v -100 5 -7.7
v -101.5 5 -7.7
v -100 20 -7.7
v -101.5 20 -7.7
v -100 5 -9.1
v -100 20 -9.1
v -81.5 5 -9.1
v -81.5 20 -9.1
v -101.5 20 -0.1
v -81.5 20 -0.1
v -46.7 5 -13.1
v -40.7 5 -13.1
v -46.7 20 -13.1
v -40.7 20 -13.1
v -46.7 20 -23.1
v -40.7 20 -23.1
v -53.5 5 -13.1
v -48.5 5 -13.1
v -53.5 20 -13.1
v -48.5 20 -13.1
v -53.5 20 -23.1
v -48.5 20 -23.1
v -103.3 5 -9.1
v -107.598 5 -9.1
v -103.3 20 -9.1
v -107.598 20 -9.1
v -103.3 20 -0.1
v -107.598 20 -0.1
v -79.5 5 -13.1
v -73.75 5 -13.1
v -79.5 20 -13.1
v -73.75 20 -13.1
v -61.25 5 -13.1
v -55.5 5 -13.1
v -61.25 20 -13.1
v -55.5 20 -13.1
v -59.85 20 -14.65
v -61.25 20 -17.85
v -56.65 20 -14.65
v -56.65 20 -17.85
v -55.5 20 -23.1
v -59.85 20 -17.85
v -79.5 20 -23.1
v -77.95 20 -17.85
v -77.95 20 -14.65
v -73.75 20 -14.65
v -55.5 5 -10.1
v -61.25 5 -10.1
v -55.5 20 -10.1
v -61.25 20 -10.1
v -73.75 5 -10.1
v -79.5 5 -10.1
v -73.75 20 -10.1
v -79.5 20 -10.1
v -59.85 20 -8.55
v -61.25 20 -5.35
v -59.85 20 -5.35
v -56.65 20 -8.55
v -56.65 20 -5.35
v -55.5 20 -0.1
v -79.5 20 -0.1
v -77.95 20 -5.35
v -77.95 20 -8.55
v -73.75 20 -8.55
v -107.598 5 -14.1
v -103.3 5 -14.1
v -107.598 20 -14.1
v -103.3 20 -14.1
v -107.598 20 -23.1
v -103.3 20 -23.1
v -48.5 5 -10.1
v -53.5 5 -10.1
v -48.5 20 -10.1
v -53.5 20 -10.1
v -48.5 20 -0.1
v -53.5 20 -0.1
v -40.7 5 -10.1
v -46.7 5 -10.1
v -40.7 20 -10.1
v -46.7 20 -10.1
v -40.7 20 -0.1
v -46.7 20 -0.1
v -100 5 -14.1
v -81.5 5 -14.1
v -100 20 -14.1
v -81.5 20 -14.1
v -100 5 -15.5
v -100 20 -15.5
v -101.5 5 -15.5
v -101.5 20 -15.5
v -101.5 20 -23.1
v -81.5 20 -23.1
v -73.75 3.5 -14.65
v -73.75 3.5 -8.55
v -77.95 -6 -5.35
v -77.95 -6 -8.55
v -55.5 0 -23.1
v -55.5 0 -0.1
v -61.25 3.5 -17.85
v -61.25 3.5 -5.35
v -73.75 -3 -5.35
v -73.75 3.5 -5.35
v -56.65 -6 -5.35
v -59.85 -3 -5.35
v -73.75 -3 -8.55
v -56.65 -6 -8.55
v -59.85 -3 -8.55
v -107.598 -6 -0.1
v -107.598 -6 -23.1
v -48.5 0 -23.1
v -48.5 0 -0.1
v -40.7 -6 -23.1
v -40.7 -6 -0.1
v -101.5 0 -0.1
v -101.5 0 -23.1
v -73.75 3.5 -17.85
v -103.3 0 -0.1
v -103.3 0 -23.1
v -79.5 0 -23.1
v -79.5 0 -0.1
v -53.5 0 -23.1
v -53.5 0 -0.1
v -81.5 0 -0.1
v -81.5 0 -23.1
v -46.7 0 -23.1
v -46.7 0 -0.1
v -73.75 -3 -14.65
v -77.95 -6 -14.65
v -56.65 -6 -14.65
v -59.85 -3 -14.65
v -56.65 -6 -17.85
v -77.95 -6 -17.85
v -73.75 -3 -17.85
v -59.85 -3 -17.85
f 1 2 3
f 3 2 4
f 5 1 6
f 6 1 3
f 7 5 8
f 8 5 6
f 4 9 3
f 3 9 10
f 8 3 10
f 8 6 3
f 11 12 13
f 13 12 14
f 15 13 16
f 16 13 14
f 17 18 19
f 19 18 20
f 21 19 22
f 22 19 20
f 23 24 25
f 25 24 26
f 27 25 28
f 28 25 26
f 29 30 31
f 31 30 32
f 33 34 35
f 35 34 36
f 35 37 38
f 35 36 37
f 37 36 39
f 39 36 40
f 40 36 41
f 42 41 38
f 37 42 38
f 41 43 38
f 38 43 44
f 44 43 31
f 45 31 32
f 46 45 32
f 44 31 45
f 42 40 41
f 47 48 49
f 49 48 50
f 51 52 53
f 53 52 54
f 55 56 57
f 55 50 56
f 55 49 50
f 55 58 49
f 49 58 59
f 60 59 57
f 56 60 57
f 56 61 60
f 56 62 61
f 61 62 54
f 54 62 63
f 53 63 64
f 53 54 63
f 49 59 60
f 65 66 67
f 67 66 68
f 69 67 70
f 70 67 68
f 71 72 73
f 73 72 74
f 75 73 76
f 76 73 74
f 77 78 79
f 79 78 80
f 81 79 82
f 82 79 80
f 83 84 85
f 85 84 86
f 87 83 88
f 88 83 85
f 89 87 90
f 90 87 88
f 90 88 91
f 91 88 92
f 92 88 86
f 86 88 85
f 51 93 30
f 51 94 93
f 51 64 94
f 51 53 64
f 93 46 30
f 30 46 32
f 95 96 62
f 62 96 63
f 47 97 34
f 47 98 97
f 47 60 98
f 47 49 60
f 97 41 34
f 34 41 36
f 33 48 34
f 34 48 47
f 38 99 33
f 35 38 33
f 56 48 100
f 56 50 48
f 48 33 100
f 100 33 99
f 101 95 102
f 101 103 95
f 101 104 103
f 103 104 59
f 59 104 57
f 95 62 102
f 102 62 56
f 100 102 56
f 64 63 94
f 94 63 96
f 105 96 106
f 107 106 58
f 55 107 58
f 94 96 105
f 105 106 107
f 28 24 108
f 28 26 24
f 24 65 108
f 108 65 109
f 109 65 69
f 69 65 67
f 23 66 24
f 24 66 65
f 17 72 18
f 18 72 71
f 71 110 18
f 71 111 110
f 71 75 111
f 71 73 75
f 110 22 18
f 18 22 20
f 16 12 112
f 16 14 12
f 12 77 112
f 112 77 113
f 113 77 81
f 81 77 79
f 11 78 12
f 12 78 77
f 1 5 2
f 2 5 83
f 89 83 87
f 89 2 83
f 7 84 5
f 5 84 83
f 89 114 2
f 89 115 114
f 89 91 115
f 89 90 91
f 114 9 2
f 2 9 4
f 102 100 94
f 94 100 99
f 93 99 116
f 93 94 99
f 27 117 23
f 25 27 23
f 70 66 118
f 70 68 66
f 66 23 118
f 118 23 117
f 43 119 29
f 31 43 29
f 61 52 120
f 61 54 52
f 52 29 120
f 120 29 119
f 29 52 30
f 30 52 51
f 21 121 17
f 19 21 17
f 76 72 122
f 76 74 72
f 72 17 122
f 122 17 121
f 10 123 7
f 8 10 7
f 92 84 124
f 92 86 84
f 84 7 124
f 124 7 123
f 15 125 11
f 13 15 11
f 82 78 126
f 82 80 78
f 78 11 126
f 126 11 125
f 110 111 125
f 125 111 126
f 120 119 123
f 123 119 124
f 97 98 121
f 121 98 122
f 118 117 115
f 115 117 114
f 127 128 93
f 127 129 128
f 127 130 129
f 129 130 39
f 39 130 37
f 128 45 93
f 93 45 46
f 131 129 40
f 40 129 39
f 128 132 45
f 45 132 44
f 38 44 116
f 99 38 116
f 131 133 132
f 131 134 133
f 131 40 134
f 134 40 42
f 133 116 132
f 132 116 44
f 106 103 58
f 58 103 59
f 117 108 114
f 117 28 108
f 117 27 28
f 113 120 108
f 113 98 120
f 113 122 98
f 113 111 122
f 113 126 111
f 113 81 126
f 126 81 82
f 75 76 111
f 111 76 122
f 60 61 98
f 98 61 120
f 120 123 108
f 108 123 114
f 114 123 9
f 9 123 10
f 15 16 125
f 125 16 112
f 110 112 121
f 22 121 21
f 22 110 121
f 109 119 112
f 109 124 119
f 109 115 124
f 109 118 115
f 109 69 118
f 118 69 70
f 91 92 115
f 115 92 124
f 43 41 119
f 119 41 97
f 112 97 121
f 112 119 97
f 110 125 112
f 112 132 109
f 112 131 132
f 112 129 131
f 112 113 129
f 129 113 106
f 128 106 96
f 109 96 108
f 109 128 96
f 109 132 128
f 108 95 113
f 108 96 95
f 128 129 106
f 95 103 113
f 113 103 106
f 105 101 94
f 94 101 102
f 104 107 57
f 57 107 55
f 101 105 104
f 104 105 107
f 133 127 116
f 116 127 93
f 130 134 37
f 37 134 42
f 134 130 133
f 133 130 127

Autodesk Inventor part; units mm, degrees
ref_plane "YZ Plane" through (0, 0, 0) normal (1, 0, 0) x (0, 1, 0)
ref_plane "XZ Plane" through (0, 0, 0) normal (0, 1, 0) x (-1, 0, 0)
ref_plane "XY Plane" through (0, 0, 0) normal (0, 0, 1) x (1, 0, 0)
sketch "Sketch1" plane through (0, 0, 0) normal (0, 1, 0) x (-1, 0, 0)
  line L0 (73.75, -5.35) -> (61.25, -5.35)
  line L1 (61.25, -5.35) -> (61.25, -17.85)
  line L2 (61.25, -17.85) -> (73.75, -17.85)
  line L3 (73.75, -17.85) -> (73.75, -5.35)
  line L4 (107.5984, -0.1) -> (40.7, -0.1)
  line L5 (40.7, -23.1) -> (107.5984, -23.1)
  line L6 (77.3838, -11.6) -> (49.3838, -11.6) construction
  line L7 (67.5, -2.25) -> (67.5, -23.25) construction
  line L8 (101.5, -0.1) -> (101.5, -23.1)
  line L9 (103.3, -23.1) -> (103.3, -0.1)
  line L10 (81.5, -9.1) -> (107.5984, -9.1)
  line L11 (107.5984, -14.1) -> (81.5, -14.1)
  line L12 (48.5, -23.1) -> (48.5, -0.1)
  line L13 (46.7, -0.1) -> (46.7, -23.1)
  line L14 (53.5, -10.1) -> (40.7, -10.1)
  line L15 (53.5, -13.1) -> (40.7, -13.1)
  line L16 (101.5, -15.5) -> (100, -15.5)
  line L17 (100, -15.5) -> (100, -7.7)
  line L18 (100, -7.7) -> (101.5, -7.7)
  line L19 (79.5, -0.1) -> (79.5, -23.1)
  line L20 (81.5, -23.1) -> (81.5, -0.1)
  line L21 (55.5, -0.1) -> (55.5, -23.1)
  line L22 (53.5, -23.1) -> (53.5, -0.1)
  line L23 (79.5, -13.1) -> (73.75, -13.1)
  line L24 (73.75, -10.1) -> (79.5, -10.1)
  line L25 (61.25, -13.1) -> (55.5, -13.1)
  line L26 (55.5, -10.1) -> (61.25, -10.1)
  line L27 (73.75, -17.85) -> (77.95, -17.85)
  line L28 (77.95, -17.85) -> (77.95, -14.65)
  line L29 (77.95, -14.65) -> (73.75, -14.65)
  line L30 (73.75, -14.65) -> (61.25, -14.65)
  line L31 (56.65, -14.65) -> (56.65, -17.85)
  line L32 (56.65, -17.85) -> (59.85, -17.85)
  line L33 (59.85, -14.65) -> (56.65, -14.65)
  line L34 (59.85, -5.35) -> (56.65, -5.35)
  line L35 (56.65, -5.35) -> (56.65, -8.55)
  line L36 (56.65, -8.55) -> (59.85, -8.55)
  line L37 (61.25, -8.55) -> (73.75, -8.55)
  line L38 (77.95, -8.55) -> (77.95, -5.35)
  line L39 (73.75, -5.35) -> (77.95, -5.35)
  line L40 (77.95, -8.55) -> (73.75, -8.55)
  line L41 (59.85, -17.85) -> (59.85, -14.65)
  line L42 (59.85, -8.55) -> (59.85, -5.35)
  line L43 (61.25, -17.85) -> (59.85, -17.85)
  line L44 (61.25, -14.65) -> (59.85, -14.65)
  line L45 (61.25, -8.55) -> (59.85, -8.55)
  line L46 (61.25, -5.35) -> (59.85, -5.35)
  line L47 (40.7, -23.1) -> (40.7, -0.1)
  line L48 (107.5984, -23.1) -> (107.5984, -0.1)
  point P0 (103.3, -9.1)
  point P1 (101.5, -9.1)
  point P2 (103.3, -14.1)
  point P3 (101.5, -14.1)
  point P4 (48.5, -10.1)
  point P5 (46.7, -10.1)
  point P6 (48.5, -13.1)
  point P7 (46.7, -13.1)
  point P8 (67.5, -11.6)
  point P9 (100, -9.1)
  point P10 (100, -14.1)
  dimension "d0" = 12.5
  dimension "d1" = 12.5
  dimension "d7" = 1.8
  dimension "d12" = 5
  dimension "d18" = 1.8
  dimension "d39" = 1.5
  dimension "d43" = 2
  dimension "d45" = 2
  dimension "d52" = 12
  dimension "d57" = 12
  dimension "d62" = 3
  dimension "d63" = 3
  dimension "d67" = 22
  dimension "d71" = 7
  dimension "d76" = 4.2
  dimension "d77" = 3.2
  dimension "d78" = 3.2
  dimension "d79" = 1.4
  dimension "d80" = 3.2
  dimension "d91" = 6
  dimension "d92" = 3
  dimension "d95" = 23
extrude "Extrusion11" add sketch "Sketch1" against normal blind 3 contours L3 L37 L1 L0 | L1 L45 L42 L46 | L3 L2 L1 L30 | L1 L43 L41 L44
extrude "Extrusion10" add sketch "Sketch1" against normal blind 6 separate body contours L0 L46 L34 L35 L36 L45 L1 L26 L21 L4 L19 L24 L3 L40 L38 L39 | L3 L30 L1 L37 | L24 L19 L23 L3 | L1 L25 L21 L26 | L23 L19 L5 L21 L25 L1 L44 L33 L31 L32 L43 L2 L27 L28 L29 L3 | L19 L4 L20 L5 | L21 L5 L22 L4 | L4 L8 L18 L17 L10 L20 | L22 L14 L12 L4 | L20 L11 L17 L16 L8 L5 | L4 L9 L10 L8 | L10 L17 L11 L20 | L5 L12 L15 L22 | L12 L14 L13 L4 | L22 L15 L12 L14 | L8 L11 L9 L5 | L4 L48 L10 L9 | L8 L10 L17 L18 | L10 L8 L11 L17 | L5 L13 L15 L12 | L13 L14 L47 L4 | L12 L15 L13 L14 | L9 L11 L48 L5 | L16 L17 L11 L8 | L10 L48 L11 L9 | L9 L11 L8 L10 | L5 L47 L15 L13 | L13 L15 L47 L14
extrude "Extrusion15" add sketch "Sketch1" along normal blind 5 contours L0 L46 L34 L35 L36 L45 L1 L26 L21 L4 L19 L24 L3 L40 L38 L39 | L24 L19 L23 L3 | L1 L25 L21 L26 | L23 L19 L5 L21 L25 L1 L44 L33 L31 L32 L43 L2 L27 L28 L29 L3 | L4 L8 L18 L17 L10 L20 | L22 L14 L12 L4 | L20 L11 L17 L16 L8 L5 | L10 L17 L11 L20 | L5 L12 L15 L22 | L22 L15 L12 L14 | L4 L48 L10 L9 | L8 L10 L17 L18 | L10 L8 L11 L17 | L13 L14 L47 L4 | L9 L11 L48 L5 | L16 L17 L11 L8 | L10 L48 L11 L9 | L5 L47 L15 L13 | L13 L15 L47 L14
extrude "Extrusion14" add sketch "Sketch1" along normal blind 3.5 contours L3 L37 L1 L0 | L3 L30 L1 L37 | L3 L2 L1 L30
extrude "Extrusion16" add sketch "Sketch1" along normal blind 20 contours L0 L46 L34 L35 L36 L45 L1 L26 L21 L4 L19 L24 L3 L40 L38 L39 | L1 L45 L42 L46 | L23 L19 L5 L21 L25 L1 L44 L33 L31 L32 L43 L2 L27 L28 L29 L3 | L1 L43 L41 L44 | L4 L8 L18 L17 L10 L20 | L22 L14 L12 L4 | L20 L11 L17 L16 L8 L5 | L5 L12 L15 L22 | L4 L48 L10 L9 | L13 L14 L47 L4 | L9 L11 L48 L5 | L5 L47 L15 L13
properties part number "Spirulina_prototype"
